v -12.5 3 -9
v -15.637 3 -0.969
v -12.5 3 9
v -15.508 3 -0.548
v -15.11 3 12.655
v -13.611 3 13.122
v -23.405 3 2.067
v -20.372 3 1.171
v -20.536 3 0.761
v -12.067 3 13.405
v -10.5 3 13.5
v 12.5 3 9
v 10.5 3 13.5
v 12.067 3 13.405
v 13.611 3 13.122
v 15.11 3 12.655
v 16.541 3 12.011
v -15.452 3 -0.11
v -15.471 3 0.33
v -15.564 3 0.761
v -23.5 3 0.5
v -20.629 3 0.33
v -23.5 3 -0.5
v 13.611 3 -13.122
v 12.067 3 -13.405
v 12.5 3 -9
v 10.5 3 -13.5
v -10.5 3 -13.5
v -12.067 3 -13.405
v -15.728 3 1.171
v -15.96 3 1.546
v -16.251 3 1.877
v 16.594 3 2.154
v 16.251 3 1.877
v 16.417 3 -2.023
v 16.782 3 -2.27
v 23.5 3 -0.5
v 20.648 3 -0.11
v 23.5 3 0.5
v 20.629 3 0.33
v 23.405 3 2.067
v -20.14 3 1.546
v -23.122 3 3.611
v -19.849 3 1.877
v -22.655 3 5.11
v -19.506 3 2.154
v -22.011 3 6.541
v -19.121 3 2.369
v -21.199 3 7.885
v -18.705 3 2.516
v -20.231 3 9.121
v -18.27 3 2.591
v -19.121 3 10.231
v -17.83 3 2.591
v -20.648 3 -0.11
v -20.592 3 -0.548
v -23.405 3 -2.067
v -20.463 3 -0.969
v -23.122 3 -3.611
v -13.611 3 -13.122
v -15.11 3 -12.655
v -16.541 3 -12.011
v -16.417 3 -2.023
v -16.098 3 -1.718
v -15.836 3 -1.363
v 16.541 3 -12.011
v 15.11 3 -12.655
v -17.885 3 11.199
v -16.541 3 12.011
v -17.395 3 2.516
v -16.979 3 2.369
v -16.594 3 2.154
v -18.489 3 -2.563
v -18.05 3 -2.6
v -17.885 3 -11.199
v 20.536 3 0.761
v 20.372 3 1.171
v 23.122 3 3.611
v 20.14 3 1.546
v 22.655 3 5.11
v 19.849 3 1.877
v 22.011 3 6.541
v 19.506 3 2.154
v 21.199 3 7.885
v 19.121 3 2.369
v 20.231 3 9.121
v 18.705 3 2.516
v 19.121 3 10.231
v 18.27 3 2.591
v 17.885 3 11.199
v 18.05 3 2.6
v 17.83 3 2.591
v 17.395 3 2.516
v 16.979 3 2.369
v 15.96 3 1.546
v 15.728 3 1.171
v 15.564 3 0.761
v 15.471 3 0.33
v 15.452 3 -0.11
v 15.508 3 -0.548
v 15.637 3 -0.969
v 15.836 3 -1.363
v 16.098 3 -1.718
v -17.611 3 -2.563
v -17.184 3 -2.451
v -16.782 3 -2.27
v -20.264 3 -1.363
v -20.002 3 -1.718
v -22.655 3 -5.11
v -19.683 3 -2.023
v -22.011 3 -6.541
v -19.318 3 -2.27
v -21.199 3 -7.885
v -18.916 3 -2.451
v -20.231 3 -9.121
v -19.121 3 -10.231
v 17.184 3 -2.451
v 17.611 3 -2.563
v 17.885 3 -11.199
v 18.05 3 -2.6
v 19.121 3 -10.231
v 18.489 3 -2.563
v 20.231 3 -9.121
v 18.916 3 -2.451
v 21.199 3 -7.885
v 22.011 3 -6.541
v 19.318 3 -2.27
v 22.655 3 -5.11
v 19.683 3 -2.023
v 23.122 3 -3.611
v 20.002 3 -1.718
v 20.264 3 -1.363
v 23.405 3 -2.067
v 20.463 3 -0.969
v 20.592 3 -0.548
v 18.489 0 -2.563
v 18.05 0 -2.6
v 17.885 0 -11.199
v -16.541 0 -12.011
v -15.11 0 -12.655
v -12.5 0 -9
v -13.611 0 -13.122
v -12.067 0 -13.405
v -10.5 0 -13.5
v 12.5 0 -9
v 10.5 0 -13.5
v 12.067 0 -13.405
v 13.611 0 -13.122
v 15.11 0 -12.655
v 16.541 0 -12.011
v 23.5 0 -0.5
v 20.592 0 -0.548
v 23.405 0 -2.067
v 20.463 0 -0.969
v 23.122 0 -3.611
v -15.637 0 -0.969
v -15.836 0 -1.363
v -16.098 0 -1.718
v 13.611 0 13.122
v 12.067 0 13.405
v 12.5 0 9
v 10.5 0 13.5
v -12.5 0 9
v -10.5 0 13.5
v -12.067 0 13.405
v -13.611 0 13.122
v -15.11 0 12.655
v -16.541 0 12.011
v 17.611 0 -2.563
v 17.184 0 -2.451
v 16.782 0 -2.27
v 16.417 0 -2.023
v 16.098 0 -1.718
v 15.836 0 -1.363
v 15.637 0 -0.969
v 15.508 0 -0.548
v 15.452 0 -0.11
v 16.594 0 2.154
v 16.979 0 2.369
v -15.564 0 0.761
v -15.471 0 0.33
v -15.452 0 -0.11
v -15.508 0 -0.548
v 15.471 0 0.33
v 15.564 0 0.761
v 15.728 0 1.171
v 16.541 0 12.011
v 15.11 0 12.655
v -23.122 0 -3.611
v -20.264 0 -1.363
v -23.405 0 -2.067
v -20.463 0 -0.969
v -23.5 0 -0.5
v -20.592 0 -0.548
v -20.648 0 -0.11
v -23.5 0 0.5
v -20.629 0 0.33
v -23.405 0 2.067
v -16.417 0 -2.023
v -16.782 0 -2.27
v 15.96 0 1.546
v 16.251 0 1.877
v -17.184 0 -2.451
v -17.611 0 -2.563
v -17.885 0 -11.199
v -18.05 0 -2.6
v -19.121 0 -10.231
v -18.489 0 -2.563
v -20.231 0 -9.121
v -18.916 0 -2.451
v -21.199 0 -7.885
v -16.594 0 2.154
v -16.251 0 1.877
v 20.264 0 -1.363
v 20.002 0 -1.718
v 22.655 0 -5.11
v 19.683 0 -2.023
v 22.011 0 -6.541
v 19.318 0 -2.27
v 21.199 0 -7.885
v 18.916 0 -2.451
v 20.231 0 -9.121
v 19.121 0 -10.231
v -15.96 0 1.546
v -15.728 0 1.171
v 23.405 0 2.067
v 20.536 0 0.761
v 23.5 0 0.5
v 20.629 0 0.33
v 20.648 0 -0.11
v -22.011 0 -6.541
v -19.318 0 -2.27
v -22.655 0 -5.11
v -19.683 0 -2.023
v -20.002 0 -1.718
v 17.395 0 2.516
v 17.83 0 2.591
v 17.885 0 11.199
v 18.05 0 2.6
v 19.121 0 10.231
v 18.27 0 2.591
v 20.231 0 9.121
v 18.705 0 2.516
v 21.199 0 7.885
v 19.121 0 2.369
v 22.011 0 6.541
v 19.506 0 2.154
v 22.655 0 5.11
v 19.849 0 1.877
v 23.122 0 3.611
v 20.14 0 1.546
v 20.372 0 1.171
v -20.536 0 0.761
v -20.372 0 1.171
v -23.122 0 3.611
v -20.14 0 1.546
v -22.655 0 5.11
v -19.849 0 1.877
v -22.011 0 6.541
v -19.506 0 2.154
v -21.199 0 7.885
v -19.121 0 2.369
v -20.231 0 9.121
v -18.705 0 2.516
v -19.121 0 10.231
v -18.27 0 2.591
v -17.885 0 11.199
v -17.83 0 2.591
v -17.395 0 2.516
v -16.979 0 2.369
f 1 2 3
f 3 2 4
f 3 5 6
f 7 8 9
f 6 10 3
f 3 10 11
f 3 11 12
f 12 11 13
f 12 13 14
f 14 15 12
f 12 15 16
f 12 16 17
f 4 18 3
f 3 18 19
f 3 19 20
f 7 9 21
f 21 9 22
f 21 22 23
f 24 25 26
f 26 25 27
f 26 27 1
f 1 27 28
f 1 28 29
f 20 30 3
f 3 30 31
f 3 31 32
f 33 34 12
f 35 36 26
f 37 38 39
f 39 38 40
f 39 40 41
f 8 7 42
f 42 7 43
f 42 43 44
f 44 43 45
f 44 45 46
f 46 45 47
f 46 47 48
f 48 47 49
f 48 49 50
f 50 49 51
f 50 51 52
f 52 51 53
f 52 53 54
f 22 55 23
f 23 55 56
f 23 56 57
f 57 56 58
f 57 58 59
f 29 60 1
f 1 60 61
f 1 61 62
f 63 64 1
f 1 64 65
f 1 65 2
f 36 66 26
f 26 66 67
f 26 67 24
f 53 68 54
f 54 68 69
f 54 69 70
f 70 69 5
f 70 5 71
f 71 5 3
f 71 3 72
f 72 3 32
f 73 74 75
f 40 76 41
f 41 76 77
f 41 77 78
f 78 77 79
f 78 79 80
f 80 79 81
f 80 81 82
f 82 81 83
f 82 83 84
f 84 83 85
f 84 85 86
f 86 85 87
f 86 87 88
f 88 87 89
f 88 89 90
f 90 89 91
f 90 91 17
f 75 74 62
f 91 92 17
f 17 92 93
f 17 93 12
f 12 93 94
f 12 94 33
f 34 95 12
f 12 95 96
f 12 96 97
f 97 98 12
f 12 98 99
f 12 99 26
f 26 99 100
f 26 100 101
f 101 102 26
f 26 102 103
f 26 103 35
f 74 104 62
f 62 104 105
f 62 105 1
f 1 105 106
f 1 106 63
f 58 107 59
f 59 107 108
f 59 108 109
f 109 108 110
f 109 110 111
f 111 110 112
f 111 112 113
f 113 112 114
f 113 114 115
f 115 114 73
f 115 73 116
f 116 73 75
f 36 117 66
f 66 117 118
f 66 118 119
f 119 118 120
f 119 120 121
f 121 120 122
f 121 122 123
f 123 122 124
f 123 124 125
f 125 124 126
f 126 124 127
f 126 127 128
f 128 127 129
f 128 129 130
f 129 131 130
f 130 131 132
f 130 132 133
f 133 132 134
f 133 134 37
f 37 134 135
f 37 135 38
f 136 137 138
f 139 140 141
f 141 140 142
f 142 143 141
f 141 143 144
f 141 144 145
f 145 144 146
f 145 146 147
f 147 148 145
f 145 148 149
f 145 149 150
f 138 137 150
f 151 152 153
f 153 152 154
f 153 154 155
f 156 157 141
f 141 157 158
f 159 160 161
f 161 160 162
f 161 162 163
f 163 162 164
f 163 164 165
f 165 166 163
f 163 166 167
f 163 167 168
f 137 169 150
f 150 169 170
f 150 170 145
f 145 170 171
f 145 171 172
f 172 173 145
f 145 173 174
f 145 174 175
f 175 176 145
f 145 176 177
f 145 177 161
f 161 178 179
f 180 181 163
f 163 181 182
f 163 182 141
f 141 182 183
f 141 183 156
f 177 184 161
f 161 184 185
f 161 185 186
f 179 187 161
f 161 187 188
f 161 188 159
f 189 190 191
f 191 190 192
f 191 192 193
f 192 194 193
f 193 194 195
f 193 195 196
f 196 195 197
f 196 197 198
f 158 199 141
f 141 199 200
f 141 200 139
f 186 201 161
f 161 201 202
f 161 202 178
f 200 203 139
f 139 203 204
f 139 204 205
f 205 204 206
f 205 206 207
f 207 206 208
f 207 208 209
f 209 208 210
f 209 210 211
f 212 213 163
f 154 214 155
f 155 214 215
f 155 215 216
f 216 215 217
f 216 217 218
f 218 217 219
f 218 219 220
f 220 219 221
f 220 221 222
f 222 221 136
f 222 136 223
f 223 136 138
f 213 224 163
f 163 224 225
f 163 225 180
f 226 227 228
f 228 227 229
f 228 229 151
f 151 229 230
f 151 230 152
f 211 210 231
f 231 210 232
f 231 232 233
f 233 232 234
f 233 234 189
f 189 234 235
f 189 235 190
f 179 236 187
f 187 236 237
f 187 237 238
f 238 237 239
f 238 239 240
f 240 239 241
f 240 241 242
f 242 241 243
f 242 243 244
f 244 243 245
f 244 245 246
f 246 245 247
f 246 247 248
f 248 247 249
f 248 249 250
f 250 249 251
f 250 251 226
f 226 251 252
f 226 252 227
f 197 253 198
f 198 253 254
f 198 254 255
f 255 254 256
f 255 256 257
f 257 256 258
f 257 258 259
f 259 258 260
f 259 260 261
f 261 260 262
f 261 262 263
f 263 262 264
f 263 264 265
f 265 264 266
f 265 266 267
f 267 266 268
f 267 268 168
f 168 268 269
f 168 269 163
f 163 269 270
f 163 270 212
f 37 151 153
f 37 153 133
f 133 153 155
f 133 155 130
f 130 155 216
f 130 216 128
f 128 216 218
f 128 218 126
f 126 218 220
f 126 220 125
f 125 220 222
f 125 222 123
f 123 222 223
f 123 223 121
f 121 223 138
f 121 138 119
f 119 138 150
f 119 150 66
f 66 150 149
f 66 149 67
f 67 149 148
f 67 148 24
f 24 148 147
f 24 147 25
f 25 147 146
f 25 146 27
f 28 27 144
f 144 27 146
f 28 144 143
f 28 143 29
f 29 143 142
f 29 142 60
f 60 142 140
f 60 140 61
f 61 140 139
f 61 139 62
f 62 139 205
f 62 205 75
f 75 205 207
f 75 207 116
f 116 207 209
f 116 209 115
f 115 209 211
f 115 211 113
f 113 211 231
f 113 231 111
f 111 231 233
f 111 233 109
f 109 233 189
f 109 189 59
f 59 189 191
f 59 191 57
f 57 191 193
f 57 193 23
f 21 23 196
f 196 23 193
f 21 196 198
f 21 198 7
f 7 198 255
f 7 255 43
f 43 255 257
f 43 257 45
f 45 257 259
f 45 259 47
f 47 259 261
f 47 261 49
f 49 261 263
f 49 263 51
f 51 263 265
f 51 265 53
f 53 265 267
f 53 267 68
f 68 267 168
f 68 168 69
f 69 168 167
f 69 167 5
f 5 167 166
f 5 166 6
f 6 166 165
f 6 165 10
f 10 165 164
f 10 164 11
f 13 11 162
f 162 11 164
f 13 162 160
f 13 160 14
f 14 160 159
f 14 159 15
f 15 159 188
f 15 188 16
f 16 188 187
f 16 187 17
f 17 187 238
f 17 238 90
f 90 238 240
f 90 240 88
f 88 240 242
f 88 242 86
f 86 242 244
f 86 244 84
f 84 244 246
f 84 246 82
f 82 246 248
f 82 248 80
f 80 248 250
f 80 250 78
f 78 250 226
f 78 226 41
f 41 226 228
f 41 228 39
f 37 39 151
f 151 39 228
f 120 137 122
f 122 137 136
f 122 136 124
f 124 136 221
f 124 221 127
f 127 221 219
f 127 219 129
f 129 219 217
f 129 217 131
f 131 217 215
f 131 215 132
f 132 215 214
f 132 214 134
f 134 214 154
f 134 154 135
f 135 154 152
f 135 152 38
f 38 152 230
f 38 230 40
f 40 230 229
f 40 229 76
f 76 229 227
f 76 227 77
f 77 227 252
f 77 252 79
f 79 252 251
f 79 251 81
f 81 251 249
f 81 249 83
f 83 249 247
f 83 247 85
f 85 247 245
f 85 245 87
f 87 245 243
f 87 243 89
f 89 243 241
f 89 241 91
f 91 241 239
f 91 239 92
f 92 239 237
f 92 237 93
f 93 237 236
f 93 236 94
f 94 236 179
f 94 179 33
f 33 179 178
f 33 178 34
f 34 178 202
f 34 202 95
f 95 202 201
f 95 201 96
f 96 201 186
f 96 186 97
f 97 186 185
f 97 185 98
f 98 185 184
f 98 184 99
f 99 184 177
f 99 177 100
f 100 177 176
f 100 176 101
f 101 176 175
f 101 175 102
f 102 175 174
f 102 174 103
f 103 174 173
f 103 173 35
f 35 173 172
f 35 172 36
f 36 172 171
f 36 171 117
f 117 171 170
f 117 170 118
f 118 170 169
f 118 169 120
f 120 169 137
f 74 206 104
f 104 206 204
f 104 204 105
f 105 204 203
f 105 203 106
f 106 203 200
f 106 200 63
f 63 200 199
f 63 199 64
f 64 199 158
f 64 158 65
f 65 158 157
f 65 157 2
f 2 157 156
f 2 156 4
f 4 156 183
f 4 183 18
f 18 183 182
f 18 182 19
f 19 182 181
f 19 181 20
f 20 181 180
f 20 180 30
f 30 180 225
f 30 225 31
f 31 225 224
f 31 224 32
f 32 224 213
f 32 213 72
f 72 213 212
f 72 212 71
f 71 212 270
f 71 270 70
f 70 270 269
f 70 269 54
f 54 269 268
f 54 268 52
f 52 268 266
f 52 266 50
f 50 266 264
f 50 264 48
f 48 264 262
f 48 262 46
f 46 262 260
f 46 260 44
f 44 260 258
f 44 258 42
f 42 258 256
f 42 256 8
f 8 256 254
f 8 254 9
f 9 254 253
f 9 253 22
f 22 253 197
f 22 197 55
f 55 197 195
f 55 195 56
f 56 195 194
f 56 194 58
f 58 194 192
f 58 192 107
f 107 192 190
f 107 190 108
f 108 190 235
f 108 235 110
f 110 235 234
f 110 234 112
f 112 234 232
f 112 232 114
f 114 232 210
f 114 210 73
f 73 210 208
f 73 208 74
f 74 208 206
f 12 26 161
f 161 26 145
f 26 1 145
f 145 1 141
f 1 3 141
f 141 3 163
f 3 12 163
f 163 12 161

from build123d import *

# Parameters (mm, degrees)
SKETCH1_R           = 2.6
SKETCH1_W           = 25
SKETCH1_H           = 18
BOSS_EXTRUDE1_DEPTH = 3


with BuildPart() as part:
    # Sketch1 → Boss-Extrude1 (new body)
    with BuildSketch(Plane(origin=(0, 0, 0), x_dir=(1, 0, 0), z_dir=(0, 1, 0))):
        with BuildLine():
            Line((-10.5, 13.5), (10.5, 13.5))
            ThreePointArc((10.5, 13.5), (19.692388155, 9.692388155), (23.5, 0.5))
            Line((23.5, 0.5), (23.5, -0.5))
            ThreePointArc((23.5, -0.5), (19.692388155, -9.692388155), (10.5, -13.5))
            Line((10.5, -13.5), (-10.5, -13.5))
            ThreePointArc((-10.5, -13.5), (-19.692388155, -9.692388155), (-23.5, -0.5))
            Line((-23.5, -0.5), (-23.5, 0.5))
            ThreePointArc((-23.5, 0.5), (-19.692388155, 9.692388155), (-10.5, 13.5))
        make_face()
        with Locations(Location((18.05, 0, 0), (0, 0, 270))):
            Circle(SKETCH1_R, mode=Mode.SUBTRACT)
        with Locations(Location((-18.05, 0, 0), (0, 0, 90))):
            Circle(SKETCH1_R, mode=Mode.SUBTRACT)
        Rectangle(SKETCH1_W, SKETCH1_H, mode=Mode.SUBTRACT)
    extrude(amount=BOSS_EXTRUDE1_DEPTH)


solid = part.part
